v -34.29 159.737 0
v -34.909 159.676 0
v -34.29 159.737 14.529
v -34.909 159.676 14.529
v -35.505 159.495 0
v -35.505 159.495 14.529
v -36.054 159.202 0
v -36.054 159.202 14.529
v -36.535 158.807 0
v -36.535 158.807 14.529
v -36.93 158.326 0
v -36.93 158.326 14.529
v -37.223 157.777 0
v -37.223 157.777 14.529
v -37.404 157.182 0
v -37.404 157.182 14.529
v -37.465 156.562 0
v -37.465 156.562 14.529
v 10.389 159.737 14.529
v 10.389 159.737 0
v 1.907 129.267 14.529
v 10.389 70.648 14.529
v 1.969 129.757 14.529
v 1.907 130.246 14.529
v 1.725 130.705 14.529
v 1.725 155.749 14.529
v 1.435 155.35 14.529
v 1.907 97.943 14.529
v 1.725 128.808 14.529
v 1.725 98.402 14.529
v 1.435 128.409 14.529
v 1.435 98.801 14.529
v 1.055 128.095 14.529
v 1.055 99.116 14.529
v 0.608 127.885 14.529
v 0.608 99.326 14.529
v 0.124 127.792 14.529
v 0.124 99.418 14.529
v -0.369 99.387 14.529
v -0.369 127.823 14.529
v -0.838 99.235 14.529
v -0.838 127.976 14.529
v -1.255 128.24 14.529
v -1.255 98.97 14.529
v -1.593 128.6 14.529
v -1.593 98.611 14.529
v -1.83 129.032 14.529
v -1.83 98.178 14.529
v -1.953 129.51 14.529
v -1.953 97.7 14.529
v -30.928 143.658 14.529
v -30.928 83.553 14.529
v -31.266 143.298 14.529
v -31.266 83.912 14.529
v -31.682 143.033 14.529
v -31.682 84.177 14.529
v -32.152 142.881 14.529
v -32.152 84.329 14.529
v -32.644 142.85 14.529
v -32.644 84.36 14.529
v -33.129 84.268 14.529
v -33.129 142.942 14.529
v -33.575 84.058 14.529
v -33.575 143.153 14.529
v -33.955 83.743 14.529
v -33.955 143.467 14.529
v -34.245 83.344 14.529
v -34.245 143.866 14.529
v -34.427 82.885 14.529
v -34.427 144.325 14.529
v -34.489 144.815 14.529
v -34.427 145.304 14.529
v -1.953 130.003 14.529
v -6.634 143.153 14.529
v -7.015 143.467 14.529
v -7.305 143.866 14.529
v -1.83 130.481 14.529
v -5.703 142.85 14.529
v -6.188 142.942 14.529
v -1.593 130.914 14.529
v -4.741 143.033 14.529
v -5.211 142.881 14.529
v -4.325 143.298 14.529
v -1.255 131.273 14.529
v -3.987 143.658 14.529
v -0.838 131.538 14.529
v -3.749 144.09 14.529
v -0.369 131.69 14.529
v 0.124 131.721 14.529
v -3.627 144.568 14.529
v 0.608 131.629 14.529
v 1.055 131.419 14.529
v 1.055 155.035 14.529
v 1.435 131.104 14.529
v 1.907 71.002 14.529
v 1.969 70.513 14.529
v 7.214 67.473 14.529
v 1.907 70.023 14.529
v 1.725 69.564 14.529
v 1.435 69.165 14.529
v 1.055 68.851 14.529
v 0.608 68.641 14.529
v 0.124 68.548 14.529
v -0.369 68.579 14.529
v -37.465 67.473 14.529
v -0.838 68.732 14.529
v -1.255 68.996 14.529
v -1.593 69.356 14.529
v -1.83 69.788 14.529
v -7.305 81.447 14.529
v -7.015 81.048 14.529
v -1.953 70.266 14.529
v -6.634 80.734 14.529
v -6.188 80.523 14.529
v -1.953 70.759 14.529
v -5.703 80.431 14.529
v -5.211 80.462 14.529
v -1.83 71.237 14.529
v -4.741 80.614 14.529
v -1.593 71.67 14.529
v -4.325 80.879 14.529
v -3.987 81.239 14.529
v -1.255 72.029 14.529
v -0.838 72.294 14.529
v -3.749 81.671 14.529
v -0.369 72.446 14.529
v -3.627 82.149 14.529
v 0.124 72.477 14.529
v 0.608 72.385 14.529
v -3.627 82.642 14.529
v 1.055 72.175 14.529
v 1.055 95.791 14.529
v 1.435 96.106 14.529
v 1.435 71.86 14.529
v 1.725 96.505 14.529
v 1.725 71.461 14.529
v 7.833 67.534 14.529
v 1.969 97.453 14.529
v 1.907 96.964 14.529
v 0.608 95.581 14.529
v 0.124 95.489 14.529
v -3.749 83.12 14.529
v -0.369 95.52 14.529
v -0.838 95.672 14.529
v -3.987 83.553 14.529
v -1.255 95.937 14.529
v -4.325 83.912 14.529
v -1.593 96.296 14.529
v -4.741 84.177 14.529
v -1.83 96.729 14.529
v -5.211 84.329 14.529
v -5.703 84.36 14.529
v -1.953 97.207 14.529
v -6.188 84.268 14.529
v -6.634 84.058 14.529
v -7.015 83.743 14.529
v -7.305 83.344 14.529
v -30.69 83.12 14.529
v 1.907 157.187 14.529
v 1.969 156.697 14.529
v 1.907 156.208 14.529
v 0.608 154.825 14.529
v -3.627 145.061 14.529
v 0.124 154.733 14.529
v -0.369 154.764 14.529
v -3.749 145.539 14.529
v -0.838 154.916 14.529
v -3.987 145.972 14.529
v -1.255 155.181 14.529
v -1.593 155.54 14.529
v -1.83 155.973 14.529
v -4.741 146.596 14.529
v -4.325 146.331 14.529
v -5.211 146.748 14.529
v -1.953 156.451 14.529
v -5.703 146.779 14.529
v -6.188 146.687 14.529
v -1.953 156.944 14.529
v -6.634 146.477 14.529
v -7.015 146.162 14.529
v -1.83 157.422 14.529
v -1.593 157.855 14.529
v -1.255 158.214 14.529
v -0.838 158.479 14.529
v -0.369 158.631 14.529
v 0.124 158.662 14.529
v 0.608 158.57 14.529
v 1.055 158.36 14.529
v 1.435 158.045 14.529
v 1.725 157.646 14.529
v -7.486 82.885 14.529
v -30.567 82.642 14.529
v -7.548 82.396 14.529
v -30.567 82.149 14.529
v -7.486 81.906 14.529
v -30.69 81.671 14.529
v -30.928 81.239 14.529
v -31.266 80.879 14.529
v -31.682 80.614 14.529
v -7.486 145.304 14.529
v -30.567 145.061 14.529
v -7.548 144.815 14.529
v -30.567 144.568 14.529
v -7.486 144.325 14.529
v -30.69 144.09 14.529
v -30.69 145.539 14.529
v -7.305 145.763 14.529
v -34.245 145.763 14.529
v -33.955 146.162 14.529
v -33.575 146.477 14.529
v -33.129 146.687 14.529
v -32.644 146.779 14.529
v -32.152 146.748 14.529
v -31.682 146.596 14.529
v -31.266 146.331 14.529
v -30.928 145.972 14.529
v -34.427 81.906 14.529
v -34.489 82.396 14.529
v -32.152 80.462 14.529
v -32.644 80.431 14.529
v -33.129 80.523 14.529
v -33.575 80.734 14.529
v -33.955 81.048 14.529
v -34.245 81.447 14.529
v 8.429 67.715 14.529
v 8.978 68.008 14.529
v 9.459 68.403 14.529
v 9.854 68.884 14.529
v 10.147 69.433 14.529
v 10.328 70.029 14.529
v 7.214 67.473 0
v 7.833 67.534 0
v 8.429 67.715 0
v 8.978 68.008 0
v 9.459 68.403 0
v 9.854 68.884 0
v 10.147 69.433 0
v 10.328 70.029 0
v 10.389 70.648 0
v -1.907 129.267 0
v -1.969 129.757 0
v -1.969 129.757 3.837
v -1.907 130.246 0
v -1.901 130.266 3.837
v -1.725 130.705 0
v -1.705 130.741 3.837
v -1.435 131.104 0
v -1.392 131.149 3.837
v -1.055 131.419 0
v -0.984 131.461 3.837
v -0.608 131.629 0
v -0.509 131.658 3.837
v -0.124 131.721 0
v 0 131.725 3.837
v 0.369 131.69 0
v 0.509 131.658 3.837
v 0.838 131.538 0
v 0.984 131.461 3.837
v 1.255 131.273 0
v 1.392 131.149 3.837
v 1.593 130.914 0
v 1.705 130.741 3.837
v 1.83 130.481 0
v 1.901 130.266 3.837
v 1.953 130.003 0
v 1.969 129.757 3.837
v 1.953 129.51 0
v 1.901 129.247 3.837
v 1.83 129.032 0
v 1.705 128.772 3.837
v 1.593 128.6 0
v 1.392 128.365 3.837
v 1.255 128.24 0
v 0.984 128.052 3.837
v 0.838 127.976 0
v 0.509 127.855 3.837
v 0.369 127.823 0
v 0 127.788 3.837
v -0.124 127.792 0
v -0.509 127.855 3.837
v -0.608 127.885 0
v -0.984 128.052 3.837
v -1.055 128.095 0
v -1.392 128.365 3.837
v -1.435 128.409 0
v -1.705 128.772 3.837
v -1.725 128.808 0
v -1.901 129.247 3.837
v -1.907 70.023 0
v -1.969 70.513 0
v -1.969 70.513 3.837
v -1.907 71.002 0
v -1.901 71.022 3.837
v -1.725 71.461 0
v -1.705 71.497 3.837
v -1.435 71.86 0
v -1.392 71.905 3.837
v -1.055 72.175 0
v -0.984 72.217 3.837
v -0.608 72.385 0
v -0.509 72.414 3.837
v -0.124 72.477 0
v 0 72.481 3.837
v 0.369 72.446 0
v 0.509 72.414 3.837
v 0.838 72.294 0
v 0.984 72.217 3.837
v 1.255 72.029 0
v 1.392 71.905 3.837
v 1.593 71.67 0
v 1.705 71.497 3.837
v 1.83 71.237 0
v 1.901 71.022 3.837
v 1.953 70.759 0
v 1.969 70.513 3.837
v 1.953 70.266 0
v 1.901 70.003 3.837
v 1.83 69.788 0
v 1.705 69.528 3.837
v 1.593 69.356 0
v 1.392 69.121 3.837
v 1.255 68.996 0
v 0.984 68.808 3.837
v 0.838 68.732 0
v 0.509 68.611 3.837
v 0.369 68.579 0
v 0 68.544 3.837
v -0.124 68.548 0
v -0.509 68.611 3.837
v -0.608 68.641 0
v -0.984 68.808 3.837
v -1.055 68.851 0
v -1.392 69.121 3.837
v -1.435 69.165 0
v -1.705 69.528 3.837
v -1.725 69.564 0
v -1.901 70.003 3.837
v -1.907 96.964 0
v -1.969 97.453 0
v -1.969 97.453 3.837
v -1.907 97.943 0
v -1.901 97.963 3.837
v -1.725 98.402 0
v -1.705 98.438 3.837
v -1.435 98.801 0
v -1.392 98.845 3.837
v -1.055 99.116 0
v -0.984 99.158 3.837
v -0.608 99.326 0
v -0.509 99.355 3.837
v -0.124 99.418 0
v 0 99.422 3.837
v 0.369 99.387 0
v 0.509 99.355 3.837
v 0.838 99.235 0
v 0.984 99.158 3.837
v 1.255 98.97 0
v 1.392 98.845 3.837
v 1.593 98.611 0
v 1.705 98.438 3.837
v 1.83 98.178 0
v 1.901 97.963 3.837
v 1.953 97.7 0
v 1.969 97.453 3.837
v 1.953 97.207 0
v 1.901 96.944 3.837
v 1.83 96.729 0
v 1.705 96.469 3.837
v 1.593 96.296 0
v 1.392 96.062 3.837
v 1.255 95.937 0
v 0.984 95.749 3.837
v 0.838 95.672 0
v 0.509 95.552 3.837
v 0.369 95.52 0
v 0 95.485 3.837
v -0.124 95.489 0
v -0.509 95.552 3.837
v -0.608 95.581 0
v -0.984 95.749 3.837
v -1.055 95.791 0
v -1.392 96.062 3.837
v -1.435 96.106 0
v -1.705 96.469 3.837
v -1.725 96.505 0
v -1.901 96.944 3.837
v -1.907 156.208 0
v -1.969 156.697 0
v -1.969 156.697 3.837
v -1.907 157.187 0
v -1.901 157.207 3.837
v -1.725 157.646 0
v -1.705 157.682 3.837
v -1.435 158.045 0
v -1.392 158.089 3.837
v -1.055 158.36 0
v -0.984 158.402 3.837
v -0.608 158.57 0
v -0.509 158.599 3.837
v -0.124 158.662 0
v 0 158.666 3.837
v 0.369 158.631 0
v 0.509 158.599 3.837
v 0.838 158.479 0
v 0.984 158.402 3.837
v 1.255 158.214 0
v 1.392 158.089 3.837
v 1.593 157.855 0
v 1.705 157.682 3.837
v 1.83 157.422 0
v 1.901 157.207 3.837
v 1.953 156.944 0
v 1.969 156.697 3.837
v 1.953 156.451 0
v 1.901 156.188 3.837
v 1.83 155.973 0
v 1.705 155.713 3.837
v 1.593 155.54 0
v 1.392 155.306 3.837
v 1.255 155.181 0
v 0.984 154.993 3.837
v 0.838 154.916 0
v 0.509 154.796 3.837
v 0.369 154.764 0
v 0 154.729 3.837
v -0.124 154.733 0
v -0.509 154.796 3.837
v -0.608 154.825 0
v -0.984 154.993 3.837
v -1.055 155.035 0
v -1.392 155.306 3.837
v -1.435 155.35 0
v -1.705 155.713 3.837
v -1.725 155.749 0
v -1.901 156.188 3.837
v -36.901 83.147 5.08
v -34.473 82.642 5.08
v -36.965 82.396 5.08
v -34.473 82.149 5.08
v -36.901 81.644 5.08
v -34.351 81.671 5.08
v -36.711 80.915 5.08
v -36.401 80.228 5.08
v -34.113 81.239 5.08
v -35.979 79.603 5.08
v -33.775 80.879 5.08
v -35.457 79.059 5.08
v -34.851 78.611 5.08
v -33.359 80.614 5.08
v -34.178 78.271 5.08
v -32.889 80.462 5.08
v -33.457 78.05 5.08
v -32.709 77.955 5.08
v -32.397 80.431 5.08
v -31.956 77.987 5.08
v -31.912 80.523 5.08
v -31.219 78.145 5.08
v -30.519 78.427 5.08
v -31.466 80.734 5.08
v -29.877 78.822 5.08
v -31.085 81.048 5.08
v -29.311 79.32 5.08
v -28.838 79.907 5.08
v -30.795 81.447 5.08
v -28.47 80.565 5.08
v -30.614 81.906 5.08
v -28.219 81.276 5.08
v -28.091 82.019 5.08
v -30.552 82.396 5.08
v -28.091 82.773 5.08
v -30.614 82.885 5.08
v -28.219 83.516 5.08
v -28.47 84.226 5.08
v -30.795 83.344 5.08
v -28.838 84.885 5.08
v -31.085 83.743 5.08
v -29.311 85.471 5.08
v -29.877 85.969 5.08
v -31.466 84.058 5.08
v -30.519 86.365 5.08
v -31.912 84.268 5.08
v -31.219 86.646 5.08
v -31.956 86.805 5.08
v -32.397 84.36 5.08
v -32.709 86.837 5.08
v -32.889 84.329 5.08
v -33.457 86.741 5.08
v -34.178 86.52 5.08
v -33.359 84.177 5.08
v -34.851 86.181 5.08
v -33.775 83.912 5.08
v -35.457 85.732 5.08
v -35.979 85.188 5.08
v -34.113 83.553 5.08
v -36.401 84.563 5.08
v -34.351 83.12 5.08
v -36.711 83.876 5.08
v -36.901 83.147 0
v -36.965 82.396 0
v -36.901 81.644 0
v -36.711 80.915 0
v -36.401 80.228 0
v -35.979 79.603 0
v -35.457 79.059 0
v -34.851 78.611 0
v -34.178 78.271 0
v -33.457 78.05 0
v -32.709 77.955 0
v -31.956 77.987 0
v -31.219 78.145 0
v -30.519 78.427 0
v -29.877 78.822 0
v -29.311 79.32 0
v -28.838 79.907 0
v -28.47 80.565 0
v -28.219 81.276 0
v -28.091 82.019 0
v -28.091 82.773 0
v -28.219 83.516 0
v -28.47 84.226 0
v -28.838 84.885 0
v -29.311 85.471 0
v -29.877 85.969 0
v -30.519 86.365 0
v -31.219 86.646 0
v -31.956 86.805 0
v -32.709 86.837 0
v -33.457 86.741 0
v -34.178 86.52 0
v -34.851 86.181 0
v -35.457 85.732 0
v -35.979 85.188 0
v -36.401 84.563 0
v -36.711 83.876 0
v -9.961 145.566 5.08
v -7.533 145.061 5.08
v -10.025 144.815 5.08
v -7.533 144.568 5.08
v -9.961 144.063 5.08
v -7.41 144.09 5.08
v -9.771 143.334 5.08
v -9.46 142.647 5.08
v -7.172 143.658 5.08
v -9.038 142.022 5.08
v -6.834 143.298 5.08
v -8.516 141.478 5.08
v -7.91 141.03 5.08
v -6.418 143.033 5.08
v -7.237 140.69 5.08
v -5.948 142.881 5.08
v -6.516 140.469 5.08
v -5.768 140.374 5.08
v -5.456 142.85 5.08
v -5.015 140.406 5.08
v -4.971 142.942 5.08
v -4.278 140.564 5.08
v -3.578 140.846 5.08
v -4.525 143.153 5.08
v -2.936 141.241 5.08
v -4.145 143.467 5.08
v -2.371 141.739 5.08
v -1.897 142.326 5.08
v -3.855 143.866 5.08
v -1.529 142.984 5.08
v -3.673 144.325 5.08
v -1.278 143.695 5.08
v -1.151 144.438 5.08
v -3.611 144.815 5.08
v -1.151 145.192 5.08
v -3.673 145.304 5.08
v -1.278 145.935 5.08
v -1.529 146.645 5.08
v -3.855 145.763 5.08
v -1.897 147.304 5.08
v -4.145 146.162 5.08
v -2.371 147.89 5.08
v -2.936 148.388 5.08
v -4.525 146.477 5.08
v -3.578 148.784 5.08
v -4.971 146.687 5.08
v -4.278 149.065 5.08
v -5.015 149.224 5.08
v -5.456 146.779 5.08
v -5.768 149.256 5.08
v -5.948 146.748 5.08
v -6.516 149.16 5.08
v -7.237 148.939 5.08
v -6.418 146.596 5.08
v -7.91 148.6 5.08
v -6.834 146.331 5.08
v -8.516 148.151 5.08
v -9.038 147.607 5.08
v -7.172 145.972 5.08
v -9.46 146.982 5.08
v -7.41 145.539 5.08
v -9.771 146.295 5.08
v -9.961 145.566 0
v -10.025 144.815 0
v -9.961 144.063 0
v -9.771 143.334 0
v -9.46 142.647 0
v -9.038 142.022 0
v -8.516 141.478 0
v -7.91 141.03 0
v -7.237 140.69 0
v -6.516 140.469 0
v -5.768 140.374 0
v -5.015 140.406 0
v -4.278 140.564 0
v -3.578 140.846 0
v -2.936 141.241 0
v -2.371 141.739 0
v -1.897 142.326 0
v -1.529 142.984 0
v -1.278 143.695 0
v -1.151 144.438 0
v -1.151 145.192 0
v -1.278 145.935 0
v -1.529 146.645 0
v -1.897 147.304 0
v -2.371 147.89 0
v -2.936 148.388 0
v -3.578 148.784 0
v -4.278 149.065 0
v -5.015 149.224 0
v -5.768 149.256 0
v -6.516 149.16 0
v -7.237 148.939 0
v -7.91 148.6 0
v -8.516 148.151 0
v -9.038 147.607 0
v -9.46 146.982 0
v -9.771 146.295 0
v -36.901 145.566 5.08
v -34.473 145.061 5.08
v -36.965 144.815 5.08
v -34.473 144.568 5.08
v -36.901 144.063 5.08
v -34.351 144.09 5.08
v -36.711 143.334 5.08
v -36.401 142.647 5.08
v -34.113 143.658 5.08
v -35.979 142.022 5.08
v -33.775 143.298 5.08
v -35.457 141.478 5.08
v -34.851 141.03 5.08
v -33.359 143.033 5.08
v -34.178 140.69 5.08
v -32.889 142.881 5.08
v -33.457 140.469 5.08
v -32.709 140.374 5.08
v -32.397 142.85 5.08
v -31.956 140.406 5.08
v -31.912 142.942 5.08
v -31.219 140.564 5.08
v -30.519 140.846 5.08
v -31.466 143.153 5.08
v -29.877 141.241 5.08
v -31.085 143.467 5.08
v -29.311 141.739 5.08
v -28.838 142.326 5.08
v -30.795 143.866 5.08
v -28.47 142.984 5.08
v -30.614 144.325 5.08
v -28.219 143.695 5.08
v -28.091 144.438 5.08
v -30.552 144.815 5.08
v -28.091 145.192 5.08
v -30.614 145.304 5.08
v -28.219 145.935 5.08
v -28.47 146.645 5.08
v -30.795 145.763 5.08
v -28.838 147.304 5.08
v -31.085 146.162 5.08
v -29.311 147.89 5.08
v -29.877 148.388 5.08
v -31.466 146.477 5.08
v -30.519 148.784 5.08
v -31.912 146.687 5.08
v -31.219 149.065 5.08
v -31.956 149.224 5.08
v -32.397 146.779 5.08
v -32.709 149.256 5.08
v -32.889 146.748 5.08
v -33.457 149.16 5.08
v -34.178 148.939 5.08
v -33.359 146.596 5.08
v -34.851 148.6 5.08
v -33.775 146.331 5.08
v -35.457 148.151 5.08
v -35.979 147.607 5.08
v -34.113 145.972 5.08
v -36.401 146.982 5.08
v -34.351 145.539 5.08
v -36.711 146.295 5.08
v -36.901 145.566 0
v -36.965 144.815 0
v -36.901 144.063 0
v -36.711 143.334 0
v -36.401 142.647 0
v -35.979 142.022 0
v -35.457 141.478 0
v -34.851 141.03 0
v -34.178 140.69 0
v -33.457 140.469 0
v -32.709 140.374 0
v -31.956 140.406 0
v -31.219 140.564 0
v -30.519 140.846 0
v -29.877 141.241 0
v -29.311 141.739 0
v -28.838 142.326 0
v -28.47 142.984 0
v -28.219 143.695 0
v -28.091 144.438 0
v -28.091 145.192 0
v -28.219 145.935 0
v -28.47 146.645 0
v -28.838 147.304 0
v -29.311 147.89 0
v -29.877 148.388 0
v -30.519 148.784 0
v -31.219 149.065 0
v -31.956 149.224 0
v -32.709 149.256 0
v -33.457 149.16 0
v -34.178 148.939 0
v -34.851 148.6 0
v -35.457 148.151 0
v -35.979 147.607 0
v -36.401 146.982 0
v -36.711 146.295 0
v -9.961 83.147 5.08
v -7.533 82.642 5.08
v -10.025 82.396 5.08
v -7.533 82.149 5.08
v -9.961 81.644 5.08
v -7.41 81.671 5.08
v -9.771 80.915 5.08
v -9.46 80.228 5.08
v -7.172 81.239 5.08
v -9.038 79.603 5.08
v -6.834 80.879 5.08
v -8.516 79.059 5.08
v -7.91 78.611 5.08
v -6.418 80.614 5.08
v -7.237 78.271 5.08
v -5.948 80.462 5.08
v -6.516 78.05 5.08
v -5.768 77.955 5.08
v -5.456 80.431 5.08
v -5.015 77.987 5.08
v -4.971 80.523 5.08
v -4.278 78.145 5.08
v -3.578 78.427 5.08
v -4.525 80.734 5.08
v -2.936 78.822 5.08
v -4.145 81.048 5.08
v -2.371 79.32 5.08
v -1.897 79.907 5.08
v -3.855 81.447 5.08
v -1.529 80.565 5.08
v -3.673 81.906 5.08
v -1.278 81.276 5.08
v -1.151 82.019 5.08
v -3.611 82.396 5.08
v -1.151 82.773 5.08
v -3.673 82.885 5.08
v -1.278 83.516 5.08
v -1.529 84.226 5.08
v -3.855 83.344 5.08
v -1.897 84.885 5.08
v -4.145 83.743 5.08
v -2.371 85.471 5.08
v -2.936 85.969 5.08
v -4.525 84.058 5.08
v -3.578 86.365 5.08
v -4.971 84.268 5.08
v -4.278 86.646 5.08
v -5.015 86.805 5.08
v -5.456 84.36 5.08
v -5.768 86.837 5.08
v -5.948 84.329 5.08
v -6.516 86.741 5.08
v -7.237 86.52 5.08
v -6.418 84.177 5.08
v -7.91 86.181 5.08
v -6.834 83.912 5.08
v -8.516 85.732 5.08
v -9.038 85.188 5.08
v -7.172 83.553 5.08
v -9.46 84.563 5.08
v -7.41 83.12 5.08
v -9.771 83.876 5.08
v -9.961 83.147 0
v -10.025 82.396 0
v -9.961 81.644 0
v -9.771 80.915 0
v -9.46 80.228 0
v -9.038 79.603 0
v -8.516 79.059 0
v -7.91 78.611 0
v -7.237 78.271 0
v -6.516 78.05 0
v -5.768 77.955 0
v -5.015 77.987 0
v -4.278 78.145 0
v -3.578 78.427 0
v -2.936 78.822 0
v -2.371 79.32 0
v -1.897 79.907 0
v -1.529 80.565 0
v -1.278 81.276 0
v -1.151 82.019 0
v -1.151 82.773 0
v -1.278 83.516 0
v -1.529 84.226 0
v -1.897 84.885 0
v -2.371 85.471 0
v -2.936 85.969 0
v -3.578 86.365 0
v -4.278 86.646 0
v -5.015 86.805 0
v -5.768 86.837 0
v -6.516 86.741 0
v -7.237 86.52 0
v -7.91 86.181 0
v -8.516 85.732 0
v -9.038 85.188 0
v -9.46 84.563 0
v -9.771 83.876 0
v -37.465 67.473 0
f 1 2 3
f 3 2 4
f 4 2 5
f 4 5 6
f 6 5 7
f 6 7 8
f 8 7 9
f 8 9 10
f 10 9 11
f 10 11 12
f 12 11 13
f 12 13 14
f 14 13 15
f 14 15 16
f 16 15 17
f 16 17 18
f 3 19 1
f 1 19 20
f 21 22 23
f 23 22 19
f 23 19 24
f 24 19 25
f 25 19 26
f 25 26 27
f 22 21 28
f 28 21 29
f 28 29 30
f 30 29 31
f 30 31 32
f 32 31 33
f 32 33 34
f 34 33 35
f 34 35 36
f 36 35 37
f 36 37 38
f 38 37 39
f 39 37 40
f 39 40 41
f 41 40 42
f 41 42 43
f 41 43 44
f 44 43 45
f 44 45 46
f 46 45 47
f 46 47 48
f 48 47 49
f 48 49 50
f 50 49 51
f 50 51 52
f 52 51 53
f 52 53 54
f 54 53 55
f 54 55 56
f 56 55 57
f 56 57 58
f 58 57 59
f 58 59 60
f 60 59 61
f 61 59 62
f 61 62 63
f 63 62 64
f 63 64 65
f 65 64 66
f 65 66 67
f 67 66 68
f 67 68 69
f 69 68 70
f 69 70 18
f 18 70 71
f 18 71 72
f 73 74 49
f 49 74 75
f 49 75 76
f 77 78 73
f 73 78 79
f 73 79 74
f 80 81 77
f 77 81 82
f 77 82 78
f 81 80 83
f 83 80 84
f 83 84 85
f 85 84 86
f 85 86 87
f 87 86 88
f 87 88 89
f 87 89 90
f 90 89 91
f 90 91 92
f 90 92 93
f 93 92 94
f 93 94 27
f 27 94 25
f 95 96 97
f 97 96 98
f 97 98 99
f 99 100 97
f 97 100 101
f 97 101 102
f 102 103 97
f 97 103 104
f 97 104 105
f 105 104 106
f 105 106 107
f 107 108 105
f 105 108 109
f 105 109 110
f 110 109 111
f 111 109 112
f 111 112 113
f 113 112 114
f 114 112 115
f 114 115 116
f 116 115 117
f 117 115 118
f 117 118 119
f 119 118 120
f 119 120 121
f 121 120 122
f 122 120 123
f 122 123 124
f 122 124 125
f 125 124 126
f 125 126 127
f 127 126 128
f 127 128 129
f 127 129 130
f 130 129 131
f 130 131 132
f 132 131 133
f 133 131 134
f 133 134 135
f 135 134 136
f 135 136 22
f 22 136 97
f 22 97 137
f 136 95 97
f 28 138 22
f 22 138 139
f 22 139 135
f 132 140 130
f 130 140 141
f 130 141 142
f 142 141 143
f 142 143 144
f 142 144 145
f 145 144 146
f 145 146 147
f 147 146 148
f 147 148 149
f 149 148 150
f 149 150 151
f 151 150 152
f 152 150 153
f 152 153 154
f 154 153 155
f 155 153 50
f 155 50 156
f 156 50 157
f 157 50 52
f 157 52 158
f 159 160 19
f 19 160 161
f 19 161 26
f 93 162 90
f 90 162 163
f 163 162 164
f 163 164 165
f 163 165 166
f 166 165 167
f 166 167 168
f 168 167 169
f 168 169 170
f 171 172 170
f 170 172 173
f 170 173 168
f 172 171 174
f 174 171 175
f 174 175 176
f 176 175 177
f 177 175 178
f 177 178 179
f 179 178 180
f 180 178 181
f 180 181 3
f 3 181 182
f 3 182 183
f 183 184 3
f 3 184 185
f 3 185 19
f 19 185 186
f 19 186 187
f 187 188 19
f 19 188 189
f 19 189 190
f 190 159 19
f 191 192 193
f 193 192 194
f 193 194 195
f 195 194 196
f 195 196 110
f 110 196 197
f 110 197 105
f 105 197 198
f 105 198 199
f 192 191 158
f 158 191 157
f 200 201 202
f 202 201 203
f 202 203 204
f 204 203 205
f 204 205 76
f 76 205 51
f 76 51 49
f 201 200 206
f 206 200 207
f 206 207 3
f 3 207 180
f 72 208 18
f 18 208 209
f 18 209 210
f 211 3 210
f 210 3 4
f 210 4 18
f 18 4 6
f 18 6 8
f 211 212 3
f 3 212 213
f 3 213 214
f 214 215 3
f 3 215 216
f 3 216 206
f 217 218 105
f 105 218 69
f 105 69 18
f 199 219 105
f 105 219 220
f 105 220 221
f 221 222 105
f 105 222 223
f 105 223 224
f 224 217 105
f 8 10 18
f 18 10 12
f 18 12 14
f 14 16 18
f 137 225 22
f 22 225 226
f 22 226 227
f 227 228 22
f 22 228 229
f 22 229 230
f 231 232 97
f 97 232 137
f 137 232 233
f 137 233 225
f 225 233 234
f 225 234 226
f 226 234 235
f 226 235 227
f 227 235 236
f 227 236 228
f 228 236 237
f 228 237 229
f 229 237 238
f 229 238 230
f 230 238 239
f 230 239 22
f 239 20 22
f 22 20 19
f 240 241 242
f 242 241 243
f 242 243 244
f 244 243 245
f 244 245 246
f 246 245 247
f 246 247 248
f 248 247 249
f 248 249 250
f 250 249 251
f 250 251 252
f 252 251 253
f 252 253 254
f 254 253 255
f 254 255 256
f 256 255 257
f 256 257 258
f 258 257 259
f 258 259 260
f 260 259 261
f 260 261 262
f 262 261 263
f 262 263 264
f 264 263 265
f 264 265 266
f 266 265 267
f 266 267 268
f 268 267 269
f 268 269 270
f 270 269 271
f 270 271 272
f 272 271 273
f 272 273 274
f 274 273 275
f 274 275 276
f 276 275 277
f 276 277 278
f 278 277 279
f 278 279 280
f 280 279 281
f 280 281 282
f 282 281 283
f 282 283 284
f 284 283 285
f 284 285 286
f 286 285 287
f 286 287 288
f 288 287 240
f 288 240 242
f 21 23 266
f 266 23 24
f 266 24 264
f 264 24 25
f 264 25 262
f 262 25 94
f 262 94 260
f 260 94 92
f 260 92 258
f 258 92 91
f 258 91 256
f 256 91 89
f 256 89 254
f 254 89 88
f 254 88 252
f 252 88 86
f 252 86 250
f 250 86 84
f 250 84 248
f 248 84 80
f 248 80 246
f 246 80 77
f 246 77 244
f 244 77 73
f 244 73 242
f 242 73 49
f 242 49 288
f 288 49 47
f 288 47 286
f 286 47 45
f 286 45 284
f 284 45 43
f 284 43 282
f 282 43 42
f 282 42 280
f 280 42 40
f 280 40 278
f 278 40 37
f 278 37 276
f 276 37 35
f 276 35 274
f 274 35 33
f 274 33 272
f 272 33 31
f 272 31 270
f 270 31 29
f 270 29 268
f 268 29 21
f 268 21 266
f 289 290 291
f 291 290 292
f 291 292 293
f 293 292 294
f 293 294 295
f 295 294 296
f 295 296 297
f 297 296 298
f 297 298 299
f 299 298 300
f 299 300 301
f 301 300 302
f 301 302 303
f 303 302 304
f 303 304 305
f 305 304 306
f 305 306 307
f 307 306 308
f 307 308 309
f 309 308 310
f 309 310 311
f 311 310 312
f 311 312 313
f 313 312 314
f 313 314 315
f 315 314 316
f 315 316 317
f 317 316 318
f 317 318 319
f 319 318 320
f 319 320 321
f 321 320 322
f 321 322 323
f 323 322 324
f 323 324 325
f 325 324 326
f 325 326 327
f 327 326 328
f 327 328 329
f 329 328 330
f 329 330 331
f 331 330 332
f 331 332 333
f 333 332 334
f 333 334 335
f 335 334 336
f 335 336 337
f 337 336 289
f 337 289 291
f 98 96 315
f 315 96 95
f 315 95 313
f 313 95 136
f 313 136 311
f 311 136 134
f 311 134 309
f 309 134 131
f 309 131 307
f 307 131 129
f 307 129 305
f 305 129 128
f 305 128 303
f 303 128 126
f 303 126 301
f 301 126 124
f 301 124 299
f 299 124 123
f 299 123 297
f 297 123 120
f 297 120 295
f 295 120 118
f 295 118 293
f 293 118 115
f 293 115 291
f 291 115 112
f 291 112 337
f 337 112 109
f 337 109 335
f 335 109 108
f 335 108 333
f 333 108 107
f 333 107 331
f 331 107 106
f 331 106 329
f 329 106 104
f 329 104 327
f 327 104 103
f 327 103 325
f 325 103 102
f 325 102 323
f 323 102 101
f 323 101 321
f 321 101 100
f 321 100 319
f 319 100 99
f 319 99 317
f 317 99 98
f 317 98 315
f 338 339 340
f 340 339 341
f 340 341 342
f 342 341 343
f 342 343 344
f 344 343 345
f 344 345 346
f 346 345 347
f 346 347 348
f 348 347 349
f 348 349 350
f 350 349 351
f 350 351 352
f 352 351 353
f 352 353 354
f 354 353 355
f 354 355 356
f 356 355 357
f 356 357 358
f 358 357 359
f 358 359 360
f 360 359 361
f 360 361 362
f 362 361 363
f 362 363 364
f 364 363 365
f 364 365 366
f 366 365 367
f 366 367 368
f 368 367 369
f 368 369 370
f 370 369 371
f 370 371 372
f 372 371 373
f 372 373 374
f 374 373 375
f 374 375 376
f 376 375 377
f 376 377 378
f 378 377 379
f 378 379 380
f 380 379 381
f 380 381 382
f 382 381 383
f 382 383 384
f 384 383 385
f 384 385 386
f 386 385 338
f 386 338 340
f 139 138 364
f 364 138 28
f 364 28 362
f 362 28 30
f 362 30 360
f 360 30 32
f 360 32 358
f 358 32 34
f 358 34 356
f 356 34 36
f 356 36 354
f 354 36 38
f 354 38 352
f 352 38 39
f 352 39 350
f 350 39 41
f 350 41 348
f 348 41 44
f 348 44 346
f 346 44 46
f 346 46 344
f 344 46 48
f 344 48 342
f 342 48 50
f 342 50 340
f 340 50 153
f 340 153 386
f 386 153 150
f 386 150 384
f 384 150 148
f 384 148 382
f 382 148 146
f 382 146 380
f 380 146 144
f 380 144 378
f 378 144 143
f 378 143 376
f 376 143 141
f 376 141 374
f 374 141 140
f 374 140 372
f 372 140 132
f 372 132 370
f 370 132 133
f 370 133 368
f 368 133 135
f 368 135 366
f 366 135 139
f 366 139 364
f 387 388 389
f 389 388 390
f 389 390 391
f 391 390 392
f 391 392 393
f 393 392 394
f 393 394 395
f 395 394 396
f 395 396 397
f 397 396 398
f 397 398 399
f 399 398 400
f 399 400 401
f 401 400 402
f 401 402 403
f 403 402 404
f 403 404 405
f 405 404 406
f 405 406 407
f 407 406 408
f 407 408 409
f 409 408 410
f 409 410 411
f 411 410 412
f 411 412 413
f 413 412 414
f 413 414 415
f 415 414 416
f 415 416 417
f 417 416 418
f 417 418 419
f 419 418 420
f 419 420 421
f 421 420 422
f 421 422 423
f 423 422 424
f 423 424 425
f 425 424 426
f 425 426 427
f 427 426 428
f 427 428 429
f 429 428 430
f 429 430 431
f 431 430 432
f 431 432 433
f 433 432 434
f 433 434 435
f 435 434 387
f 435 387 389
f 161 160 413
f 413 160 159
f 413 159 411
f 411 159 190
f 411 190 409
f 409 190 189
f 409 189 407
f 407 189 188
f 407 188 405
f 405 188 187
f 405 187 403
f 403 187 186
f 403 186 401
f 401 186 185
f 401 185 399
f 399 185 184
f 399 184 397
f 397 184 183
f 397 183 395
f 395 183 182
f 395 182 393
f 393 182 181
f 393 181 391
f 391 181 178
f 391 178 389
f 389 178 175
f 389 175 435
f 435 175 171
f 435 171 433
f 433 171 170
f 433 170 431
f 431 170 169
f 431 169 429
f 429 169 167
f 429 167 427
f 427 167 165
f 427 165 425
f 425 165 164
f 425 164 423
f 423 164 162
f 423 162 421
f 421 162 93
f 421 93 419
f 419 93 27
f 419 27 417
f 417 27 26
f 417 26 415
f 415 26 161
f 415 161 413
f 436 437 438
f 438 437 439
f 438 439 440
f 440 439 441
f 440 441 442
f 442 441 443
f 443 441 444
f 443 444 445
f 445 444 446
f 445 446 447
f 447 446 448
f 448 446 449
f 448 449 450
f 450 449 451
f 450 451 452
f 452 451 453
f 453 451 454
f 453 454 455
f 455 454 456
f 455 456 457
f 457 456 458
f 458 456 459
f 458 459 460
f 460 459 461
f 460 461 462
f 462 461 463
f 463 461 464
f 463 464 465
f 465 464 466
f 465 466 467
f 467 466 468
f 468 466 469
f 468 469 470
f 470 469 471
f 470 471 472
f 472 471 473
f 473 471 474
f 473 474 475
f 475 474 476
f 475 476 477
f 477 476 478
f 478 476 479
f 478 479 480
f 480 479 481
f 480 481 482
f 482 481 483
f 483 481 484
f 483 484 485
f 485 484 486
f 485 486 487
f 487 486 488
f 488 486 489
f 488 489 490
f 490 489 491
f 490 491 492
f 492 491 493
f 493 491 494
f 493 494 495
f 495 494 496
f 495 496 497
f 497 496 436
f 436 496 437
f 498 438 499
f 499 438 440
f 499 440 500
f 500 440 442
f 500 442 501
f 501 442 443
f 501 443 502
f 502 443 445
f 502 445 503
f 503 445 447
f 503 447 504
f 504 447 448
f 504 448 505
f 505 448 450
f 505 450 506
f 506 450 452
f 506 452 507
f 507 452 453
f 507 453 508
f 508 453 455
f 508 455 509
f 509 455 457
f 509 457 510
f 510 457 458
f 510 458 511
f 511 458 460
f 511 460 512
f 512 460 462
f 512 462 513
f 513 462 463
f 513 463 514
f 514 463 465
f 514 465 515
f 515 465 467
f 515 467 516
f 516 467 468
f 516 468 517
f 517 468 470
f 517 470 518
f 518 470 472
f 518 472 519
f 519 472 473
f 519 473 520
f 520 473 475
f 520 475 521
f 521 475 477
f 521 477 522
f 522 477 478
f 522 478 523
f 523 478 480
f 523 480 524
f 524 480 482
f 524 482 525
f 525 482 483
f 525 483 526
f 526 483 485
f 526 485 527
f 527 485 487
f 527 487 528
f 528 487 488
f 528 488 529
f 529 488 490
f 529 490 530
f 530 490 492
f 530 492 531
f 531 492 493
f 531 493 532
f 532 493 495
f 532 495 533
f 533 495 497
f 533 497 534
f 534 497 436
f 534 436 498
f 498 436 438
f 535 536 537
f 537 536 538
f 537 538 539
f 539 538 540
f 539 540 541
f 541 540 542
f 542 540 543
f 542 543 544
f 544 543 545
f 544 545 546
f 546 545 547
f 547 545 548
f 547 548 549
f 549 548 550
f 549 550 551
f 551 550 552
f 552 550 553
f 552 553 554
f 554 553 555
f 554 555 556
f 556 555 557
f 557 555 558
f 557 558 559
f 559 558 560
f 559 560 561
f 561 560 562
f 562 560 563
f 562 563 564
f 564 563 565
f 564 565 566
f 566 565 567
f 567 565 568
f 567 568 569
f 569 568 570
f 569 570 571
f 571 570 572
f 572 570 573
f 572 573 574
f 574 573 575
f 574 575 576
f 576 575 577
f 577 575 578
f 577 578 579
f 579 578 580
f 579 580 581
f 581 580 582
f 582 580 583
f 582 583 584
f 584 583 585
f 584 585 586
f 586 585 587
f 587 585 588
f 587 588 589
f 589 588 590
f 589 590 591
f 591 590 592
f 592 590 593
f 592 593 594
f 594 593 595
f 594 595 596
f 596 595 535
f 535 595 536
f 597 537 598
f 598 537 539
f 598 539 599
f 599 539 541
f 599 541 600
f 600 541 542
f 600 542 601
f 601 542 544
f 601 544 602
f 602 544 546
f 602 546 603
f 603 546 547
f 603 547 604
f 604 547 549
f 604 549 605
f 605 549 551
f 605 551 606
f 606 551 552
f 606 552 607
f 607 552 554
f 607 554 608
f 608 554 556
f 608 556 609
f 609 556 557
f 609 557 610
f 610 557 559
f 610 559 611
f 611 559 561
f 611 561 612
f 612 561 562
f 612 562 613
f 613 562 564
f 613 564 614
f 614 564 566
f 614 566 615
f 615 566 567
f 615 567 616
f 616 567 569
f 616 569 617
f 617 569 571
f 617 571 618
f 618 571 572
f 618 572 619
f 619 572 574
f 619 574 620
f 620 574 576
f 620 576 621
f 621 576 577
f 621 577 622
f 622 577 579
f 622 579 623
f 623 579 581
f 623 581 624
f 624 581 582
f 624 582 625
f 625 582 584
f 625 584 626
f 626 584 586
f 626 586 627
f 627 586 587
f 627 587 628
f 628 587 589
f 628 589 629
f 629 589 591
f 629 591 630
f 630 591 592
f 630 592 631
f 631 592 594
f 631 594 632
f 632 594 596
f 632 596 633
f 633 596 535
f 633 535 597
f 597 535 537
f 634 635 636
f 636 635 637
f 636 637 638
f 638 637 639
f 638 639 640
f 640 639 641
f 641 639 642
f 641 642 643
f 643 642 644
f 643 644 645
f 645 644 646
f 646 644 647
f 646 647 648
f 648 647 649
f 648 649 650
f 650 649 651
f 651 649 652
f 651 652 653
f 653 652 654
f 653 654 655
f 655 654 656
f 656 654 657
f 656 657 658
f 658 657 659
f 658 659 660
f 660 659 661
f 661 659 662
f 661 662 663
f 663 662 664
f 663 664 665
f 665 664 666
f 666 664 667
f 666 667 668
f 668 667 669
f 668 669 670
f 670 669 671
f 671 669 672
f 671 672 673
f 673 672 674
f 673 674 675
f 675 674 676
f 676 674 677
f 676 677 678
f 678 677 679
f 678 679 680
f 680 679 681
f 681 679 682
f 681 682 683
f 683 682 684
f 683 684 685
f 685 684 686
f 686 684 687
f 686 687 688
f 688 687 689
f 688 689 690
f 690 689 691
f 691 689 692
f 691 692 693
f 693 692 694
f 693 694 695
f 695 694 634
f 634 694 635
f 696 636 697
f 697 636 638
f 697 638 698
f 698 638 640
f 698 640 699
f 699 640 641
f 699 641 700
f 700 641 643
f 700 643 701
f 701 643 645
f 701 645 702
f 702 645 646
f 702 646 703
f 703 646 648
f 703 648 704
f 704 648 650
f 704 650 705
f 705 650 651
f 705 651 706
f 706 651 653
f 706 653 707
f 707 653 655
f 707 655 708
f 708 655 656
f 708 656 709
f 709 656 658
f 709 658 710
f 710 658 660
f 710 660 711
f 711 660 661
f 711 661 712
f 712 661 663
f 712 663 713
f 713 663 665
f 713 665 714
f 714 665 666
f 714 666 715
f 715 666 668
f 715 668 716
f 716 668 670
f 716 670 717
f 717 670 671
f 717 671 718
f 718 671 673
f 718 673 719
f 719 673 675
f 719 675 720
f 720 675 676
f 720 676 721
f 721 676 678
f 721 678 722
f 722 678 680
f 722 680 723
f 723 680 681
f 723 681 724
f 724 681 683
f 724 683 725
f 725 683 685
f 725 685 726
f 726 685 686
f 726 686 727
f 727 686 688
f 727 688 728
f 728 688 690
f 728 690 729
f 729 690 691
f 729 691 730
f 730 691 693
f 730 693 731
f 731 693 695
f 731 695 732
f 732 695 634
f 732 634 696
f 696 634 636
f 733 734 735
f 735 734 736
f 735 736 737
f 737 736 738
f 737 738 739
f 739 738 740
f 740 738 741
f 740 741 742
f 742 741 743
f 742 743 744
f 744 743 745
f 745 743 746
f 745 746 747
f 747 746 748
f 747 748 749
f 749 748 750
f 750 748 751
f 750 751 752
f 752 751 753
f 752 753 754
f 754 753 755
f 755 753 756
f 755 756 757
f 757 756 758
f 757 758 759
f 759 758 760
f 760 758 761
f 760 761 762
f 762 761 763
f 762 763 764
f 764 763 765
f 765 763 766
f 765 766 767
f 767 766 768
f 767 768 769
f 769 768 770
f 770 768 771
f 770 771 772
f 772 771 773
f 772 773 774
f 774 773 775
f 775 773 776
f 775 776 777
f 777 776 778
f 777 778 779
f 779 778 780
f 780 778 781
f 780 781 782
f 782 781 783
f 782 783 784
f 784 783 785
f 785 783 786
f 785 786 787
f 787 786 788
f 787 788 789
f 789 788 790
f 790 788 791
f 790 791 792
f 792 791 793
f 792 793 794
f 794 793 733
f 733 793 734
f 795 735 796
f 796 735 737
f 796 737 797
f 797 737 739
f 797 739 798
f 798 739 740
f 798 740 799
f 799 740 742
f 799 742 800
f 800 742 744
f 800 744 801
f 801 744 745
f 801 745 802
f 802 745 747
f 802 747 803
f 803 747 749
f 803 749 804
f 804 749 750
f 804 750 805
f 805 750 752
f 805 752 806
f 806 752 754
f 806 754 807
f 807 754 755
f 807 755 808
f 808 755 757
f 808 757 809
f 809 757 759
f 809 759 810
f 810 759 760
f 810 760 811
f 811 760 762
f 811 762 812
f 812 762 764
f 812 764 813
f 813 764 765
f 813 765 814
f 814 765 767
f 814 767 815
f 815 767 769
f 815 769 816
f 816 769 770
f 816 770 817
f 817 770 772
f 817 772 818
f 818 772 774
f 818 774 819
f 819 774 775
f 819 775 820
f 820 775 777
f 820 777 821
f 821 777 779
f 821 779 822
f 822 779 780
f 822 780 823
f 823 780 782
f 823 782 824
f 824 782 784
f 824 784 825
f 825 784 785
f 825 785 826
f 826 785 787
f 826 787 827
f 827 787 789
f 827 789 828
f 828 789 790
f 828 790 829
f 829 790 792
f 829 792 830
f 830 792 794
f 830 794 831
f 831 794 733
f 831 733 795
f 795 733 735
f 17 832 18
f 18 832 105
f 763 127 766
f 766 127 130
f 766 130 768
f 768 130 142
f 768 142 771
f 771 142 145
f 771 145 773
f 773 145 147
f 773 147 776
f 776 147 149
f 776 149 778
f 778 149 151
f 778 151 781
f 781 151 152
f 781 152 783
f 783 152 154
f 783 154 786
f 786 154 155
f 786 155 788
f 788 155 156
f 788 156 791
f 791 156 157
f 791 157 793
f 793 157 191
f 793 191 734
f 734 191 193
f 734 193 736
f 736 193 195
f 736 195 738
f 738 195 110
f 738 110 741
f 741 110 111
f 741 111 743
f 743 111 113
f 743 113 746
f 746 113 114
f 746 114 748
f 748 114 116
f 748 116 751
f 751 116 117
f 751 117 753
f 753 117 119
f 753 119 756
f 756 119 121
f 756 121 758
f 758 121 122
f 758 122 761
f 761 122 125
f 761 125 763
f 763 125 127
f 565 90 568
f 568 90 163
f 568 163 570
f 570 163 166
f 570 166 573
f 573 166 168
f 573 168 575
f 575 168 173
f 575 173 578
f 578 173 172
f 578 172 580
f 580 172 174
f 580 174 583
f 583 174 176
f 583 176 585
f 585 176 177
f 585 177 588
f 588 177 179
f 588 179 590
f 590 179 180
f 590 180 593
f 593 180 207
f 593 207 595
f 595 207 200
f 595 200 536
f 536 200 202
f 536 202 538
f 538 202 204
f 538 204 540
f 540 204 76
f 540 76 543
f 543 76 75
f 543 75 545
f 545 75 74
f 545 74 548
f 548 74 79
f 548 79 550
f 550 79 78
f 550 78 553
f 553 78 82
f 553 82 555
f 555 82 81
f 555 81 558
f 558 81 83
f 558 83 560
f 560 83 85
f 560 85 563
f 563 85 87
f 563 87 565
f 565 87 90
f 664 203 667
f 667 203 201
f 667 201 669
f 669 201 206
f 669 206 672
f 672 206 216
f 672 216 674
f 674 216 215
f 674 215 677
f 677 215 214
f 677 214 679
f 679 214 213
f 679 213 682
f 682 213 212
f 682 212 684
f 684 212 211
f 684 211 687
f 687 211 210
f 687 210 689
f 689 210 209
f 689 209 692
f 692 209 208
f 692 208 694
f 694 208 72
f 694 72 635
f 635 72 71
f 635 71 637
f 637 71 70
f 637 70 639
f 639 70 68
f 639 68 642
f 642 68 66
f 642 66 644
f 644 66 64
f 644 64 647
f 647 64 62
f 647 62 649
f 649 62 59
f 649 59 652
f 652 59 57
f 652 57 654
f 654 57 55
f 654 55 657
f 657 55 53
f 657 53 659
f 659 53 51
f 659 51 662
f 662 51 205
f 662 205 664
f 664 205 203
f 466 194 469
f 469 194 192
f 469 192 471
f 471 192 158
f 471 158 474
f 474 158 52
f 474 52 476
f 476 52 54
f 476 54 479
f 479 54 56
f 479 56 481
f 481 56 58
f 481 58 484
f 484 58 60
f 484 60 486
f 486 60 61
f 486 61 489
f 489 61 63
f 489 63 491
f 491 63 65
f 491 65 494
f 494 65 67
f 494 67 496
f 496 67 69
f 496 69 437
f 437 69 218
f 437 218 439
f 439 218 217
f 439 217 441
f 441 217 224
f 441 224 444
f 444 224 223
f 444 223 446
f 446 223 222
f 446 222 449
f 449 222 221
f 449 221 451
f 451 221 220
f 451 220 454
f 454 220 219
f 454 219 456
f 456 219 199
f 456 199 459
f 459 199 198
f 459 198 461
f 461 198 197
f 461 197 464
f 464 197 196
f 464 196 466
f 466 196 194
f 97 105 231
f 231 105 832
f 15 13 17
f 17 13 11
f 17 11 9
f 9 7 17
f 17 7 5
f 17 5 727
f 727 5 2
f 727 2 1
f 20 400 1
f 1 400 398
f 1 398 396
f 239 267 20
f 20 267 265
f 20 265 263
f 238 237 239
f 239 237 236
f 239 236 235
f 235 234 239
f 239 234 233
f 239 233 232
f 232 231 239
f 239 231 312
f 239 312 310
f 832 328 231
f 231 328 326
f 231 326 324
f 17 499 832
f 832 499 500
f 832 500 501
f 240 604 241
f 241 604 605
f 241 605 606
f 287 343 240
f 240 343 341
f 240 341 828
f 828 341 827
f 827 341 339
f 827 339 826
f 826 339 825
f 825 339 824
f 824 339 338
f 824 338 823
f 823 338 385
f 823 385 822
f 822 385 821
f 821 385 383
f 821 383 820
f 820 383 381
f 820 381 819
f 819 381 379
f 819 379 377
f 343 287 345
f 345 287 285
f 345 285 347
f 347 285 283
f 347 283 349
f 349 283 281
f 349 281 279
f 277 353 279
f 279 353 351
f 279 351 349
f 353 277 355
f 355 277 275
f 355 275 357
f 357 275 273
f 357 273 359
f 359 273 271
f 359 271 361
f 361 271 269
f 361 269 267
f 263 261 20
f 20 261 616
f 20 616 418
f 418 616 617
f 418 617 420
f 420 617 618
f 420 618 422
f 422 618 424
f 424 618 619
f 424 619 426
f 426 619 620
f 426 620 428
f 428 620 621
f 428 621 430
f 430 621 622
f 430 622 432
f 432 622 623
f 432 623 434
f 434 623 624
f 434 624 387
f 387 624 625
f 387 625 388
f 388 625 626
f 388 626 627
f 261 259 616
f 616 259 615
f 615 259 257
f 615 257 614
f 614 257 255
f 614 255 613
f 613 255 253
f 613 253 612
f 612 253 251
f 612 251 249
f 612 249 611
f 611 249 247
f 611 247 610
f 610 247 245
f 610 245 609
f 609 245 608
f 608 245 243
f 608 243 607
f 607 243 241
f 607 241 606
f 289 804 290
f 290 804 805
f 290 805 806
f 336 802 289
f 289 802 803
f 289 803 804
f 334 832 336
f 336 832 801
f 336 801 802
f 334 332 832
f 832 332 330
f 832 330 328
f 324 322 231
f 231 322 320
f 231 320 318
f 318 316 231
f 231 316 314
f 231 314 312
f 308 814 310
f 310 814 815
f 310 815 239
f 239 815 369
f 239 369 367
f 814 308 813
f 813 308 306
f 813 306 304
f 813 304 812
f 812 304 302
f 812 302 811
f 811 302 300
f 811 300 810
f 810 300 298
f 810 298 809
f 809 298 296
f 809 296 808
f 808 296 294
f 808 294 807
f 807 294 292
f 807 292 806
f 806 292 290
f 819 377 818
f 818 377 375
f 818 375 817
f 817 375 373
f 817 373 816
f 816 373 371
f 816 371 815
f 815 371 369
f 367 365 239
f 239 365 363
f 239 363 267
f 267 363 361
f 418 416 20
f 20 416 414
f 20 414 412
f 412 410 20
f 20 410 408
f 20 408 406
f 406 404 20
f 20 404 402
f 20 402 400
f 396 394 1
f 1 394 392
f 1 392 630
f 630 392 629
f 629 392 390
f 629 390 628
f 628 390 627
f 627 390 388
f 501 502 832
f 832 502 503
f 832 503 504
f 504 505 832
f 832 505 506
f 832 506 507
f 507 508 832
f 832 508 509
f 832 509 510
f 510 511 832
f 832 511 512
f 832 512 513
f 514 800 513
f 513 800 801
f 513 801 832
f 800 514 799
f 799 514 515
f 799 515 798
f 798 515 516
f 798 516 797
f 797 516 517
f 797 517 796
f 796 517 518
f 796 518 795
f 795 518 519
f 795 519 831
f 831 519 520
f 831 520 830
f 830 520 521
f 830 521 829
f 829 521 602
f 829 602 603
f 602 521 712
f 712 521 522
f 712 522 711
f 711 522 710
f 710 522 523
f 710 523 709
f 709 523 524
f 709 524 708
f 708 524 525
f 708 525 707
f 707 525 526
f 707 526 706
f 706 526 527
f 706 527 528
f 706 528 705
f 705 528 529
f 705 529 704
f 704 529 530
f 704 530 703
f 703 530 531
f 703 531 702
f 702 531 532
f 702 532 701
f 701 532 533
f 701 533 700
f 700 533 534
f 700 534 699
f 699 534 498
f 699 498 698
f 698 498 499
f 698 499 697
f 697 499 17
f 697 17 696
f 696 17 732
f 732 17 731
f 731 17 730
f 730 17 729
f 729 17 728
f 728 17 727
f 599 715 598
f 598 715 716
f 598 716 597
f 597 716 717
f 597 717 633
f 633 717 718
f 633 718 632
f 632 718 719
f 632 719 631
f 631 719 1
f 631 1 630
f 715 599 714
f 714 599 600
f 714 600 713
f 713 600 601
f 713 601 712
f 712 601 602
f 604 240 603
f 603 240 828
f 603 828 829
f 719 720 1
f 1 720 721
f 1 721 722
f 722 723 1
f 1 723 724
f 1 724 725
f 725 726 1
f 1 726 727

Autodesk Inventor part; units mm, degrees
ref_plane "YZ Plane" through (0, 0, 0) normal (1, 0, 0) x (0, 1, 0)
ref_plane "Work Plane1" through (-2.3114, 87.1581, 14.5288) normal (0, 0, -1) x (-1, 0, 0)
sketch "Sketch1" plane through (-2.3114, 87.1581, 14.5288) normal (0, 0, -1) x (-1, 0, 0)
  line L0 (0, -9.525) -> (33.4772, -9.525) construction
  line L1 (35.1536, 0) -> (35.1536, -9.525) construction
  line L2 (0, 62.419) -> (33.4772, 62.419) construction
  line L3 (-12.7, -19.685) -> (-12.7, 72.579)
  arc A0 (30.0098, 55.9153) -> (28.8277, 56.5778) centre (30.209, 57.6565) ccw construction
  arc A1 (30.0098, -6.5037) -> (28.8277, -5.8412) centre (30.209, -4.7625) ccw construction
  spline S0 degree 3 poles (-36.5707, 76.7108) (-36.5399, 76.774) (-36.5004, 76.8533) (-36.4067, 77.0384) (-36.3532, 77.143) (-36.2191, 77.4029) (-36.1252, 77.5838) (-35.9667, 77.8845) (-35.9172, 77.9778) (-35.7665, 78.2605) (-35.6659, 78.447) (-35.4766, 78.7937) (-35.4006, 78.9307) (-35.2724, 79.1587) (-35.2158, 79.2566) (-35.126, 79.4049) (-35.0957, 79.4501) (-35.0767, 79.4671) (-35.0747, 79.4643) (-35.0811, 79.4361) (-35.0968, 79.3935) (-35.1824, 79.2047) (-35.234, 79.0957) (-35.3802, 78.7956) (-35.4651, 78.6264) (-35.5969, 78.3654) (-35.6729, 78.2163) (-35.8204, 77.9297) (-35.8907, 77.794) (-36.0446, 77.5001) (-36.107, 77.3829) (-36.1471, 77.3082) knots 0.000001 0.000001 0.000001 0.000001 0.04651 0.04651 0.092381 0.092381 0.150569 0.150569 0.176245 0.176245 0.228297 0.228297 0.280311 0.280311 0.337729 0.337729 0.399083 0.399083 0.42945 0.42945 0.476927 0.476927 0.513851 0.513851 0.562369 0.562369 0.621068 0.621068 0.675896 0.675896 0.74783 0.74783 0.74783 0.74783 construction
  spline S1 degree 3 poles (-36.5707, 14.2918) (-36.5399, 14.355) (-36.5004, 14.4343) (-36.4067, 14.6194) (-36.3532, 14.724) (-36.2191, 14.9839) (-36.1252, 15.1648) (-35.9667, 15.4655) (-35.9172, 15.5588) (-35.7665, 15.8415) (-35.6659, 16.028) (-35.4766, 16.3747) (-35.4006, 16.5117) (-35.2724, 16.7397) (-35.2158, 16.8376) (-35.126, 16.9859) (-35.0957, 17.0311) (-35.0767, 17.0481) (-35.0747, 17.0453) (-35.0811, 17.0171) (-35.0968, 16.9745) (-35.1824, 16.7857) (-35.234, 16.6767) (-35.3802, 16.3766) (-35.4651, 16.2074) (-35.5969, 15.9464) (-35.6729, 15.7973) (-35.8204, 15.5107) (-35.8907, 15.375) (-36.0446, 15.0811) (-36.107, 14.9639) (-36.1471, 14.8892) knots 0.000001 0.000001 0.000001 0.000001 0.04651 0.04651 0.092381 0.092381 0.150569 0.150569 0.176245 0.176245 0.228297 0.228297 0.280311 0.280311 0.337729 0.337729 0.399083 0.399083 0.42945 0.42945 0.476927 0.476927 0.513851 0.513851 0.562369 0.562369 0.621068 0.621068 0.675896 0.675896 0.74783 0.74783 0.74783 0.74783 construction
  circle A2 centre (30.209, -4.7625) radius 1.9685
  circle A3 centre (30.209, 57.6565) radius 1.9685
  arc A4 (3.0691, -6.5037) -> (1.8869, -5.8412) centre (3.2682, -4.7625) ccw construction
  arc A5 (3.0691, 55.9153) -> (1.8869, 56.5778) centre (3.2682, 57.6565) ccw construction
  circle A6 centre (3.2682, 57.6565) radius 1.9685
  circle A7 centre (3.2682, -4.7625) radius 1.9685
  line L4 (35.1536, -19.685) -> (-12.7, -19.685)
  line L5 (35.1536, 72.579) -> (-12.7, 72.579)
  line L6 (35.1536, -19.685) -> (35.1536, 72.579)
  point P0 (-2.3114, -87.1581)
  point P1 (-12.7, 62.419)
  dimension "d0" = 3.937
  dimension "d1" = 3.937
  dimension "d4" = 3.937
  dimension "d5" = 3.937
ref_plane "Work Plane2" through (-72.402, 8.8416, 0) normal (0, 0, 1) x (1, 0, 0)
ref_plane "Work Plane3" through (-84.9315, 9.3639, 0) normal (0, 0, 1) x (1, 0, 0)
extrude "Extrusion2" add sketch "Sketch1" along normal up to surface (14.5288 mm away)
sketch "Sketch2" plane through (10.3886, 77.6331, 0) normal (0, 0, -1) x (-1, 0, 0)
  circle A0 centre (42.909, 4.7625) radius 1.9685 projected
  circle A1 centre (42.909, 4.7625) radius 1.9685
  circle A2 centre (42.909, 67.1815) radius 1.9685 projected
  circle A3 centre (42.909, 67.1815) radius 1.9685
  circle A4 centre (15.9682, 4.7625) radius 1.9685 projected
  circle A5 centre (15.9682, 4.7625) radius 1.9685
  circle A6 centre (15.9682, 67.1815) radius 1.9685 projected
  circle A7 centre (15.9682, 67.1815) radius 1.9685
  point P0 (10.3886, -77.6331)
  dimension "d12" = 3.937
  dimension "d13" = 3.937
  dimension "d14" = 3.937
  dimension "d15" = 3.937
hole "Hole1" at (-5.5796, 144.8146, 0) at (-32.5204, 144.8146, 0) at (-32.5204, 82.3956, 0) at (-5.5796, 82.3956, 0) direction (0, 0, 1) diameter 3.937 end through all counterbore diameter 8.89 counterbore depth 5.08
sketch "Sketch3" plane through (-2.3114, 87.1581, 14.5288) normal (0, 0, 1) x (1, 0, 0)
  arc A0 (3.5282, -17.9067) -> (2.2941, -18.3979) centre (2.3114, -16.6454) ccw construction
  arc A1 (3.5282, 9.034) -> (2.2941, 8.5429) centre (2.3114, 10.2954) ccw construction
  arc A2 (3.5282, 41.3373) -> (2.2941, 40.8461) centre (2.3114, 42.5986) ccw construction
  arc A3 (3.5282, 68.278) -> (2.2941, 67.7869) centre (2.3114, 69.5394) ccw construction
  circle A4 centre (2.3114, -16.6454) radius 1.9685
  circle A5 centre (2.3114, 10.2954) radius 1.9685
  circle A6 centre (2.3114, 42.5986) radius 1.9685
  circle A7 centre (2.3114, 69.5394) radius 1.9685
  point P0 (2.3114, -87.1581)
  dimension "d37" = 3.937
  dimension "d38" = 3.937
  dimension "d39" = 3.937
  dimension "d40" = 3.937
hole "Hole2" at (0, 70.5127, 14.5288) at (0, 97.4535, 14.5288) at (0, 129.7567, 14.5288) at (0, 156.6975, 14.5288) direction (0, 0, -1) diameter 3.937 end through all
fillet "Fillet1" radius 3.175 2 edges at (10.3886, 67.4731, 7.2644) (-37.465, 159.7371, 7.2644)
properties part number "RightAngleMotorMountExtensionArm"
